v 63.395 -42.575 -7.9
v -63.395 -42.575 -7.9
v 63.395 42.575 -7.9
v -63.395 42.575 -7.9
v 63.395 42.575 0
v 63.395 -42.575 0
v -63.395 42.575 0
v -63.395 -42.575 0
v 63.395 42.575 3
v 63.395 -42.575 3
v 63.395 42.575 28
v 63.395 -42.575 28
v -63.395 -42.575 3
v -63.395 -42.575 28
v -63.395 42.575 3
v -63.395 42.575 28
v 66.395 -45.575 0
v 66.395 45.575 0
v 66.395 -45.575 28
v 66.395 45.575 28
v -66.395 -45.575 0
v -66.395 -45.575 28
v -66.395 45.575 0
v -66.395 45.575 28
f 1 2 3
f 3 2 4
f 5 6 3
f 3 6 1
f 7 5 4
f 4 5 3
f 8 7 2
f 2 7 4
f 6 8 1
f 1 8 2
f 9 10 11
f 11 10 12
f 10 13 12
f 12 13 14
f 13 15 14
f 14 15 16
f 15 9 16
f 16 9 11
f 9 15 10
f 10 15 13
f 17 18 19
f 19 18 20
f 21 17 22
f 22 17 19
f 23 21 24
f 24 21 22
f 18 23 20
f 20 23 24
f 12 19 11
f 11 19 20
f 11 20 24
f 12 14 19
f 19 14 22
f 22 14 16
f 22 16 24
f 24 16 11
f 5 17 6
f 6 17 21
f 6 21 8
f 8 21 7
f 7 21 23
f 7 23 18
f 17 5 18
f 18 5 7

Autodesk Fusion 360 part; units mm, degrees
sketch "Sketch1" plane through (0, 0, 0) normal (0, 0, 1) x (1, 0, 0)
  line L0 (-63.395, 42.575) -> (63.395, 42.575)
  line L1 (63.395, 42.575) -> (63.395, -42.575)
  line L2 (63.395, -42.575) -> (-63.395, -42.575)
  line L3 (-63.395, -42.575) -> (-63.395, 42.575)
  line L4 (-63.395, 42.575) -> (63.395, -42.575) construction
  line L5 (63.395, 42.575) -> (-63.395, -42.575) construction
  dimension "d1" = 126.79
  dimension "d2" = 85.15
sketch "Sketch2" plane through (0, 0, 0) normal (0, 1, 0) x (1, 0, 0)
sketch "Sketch3" plane through (0, 0, 0) normal (0, 0, 1) x (1, 0, 0)
  line L0 (66.395, -45.575) -> (-66.395, -45.575)
  line L1 (-66.395, -45.575) -> (-66.395, 45.575)
  line L2 (-66.395, 45.575) -> (66.395, 45.575)
  line L3 (66.395, 45.575) -> (66.395, -45.575)
  line L4 (66.395, -45.575) -> (-66.395, 45.575) construction
  line L5 (-66.395, -45.575) -> (66.395, 45.575) construction
  dimension "d3" = 132.79
  dimension "d4" = 91.15
extrude "Extrude1" add sketch "Sketch3" along normal blind 28
shell "Shell1" thickness 3 removed faces 1 at (-22.1317, 15.1917, 28)
extrude "Extrude2" add sketch "Sketch1" against normal blind 4
extrude "Extrude3" add 1 faces at (-21.1317, 14.1917, -4) along direction (0, 0, -1) blind 3.9
